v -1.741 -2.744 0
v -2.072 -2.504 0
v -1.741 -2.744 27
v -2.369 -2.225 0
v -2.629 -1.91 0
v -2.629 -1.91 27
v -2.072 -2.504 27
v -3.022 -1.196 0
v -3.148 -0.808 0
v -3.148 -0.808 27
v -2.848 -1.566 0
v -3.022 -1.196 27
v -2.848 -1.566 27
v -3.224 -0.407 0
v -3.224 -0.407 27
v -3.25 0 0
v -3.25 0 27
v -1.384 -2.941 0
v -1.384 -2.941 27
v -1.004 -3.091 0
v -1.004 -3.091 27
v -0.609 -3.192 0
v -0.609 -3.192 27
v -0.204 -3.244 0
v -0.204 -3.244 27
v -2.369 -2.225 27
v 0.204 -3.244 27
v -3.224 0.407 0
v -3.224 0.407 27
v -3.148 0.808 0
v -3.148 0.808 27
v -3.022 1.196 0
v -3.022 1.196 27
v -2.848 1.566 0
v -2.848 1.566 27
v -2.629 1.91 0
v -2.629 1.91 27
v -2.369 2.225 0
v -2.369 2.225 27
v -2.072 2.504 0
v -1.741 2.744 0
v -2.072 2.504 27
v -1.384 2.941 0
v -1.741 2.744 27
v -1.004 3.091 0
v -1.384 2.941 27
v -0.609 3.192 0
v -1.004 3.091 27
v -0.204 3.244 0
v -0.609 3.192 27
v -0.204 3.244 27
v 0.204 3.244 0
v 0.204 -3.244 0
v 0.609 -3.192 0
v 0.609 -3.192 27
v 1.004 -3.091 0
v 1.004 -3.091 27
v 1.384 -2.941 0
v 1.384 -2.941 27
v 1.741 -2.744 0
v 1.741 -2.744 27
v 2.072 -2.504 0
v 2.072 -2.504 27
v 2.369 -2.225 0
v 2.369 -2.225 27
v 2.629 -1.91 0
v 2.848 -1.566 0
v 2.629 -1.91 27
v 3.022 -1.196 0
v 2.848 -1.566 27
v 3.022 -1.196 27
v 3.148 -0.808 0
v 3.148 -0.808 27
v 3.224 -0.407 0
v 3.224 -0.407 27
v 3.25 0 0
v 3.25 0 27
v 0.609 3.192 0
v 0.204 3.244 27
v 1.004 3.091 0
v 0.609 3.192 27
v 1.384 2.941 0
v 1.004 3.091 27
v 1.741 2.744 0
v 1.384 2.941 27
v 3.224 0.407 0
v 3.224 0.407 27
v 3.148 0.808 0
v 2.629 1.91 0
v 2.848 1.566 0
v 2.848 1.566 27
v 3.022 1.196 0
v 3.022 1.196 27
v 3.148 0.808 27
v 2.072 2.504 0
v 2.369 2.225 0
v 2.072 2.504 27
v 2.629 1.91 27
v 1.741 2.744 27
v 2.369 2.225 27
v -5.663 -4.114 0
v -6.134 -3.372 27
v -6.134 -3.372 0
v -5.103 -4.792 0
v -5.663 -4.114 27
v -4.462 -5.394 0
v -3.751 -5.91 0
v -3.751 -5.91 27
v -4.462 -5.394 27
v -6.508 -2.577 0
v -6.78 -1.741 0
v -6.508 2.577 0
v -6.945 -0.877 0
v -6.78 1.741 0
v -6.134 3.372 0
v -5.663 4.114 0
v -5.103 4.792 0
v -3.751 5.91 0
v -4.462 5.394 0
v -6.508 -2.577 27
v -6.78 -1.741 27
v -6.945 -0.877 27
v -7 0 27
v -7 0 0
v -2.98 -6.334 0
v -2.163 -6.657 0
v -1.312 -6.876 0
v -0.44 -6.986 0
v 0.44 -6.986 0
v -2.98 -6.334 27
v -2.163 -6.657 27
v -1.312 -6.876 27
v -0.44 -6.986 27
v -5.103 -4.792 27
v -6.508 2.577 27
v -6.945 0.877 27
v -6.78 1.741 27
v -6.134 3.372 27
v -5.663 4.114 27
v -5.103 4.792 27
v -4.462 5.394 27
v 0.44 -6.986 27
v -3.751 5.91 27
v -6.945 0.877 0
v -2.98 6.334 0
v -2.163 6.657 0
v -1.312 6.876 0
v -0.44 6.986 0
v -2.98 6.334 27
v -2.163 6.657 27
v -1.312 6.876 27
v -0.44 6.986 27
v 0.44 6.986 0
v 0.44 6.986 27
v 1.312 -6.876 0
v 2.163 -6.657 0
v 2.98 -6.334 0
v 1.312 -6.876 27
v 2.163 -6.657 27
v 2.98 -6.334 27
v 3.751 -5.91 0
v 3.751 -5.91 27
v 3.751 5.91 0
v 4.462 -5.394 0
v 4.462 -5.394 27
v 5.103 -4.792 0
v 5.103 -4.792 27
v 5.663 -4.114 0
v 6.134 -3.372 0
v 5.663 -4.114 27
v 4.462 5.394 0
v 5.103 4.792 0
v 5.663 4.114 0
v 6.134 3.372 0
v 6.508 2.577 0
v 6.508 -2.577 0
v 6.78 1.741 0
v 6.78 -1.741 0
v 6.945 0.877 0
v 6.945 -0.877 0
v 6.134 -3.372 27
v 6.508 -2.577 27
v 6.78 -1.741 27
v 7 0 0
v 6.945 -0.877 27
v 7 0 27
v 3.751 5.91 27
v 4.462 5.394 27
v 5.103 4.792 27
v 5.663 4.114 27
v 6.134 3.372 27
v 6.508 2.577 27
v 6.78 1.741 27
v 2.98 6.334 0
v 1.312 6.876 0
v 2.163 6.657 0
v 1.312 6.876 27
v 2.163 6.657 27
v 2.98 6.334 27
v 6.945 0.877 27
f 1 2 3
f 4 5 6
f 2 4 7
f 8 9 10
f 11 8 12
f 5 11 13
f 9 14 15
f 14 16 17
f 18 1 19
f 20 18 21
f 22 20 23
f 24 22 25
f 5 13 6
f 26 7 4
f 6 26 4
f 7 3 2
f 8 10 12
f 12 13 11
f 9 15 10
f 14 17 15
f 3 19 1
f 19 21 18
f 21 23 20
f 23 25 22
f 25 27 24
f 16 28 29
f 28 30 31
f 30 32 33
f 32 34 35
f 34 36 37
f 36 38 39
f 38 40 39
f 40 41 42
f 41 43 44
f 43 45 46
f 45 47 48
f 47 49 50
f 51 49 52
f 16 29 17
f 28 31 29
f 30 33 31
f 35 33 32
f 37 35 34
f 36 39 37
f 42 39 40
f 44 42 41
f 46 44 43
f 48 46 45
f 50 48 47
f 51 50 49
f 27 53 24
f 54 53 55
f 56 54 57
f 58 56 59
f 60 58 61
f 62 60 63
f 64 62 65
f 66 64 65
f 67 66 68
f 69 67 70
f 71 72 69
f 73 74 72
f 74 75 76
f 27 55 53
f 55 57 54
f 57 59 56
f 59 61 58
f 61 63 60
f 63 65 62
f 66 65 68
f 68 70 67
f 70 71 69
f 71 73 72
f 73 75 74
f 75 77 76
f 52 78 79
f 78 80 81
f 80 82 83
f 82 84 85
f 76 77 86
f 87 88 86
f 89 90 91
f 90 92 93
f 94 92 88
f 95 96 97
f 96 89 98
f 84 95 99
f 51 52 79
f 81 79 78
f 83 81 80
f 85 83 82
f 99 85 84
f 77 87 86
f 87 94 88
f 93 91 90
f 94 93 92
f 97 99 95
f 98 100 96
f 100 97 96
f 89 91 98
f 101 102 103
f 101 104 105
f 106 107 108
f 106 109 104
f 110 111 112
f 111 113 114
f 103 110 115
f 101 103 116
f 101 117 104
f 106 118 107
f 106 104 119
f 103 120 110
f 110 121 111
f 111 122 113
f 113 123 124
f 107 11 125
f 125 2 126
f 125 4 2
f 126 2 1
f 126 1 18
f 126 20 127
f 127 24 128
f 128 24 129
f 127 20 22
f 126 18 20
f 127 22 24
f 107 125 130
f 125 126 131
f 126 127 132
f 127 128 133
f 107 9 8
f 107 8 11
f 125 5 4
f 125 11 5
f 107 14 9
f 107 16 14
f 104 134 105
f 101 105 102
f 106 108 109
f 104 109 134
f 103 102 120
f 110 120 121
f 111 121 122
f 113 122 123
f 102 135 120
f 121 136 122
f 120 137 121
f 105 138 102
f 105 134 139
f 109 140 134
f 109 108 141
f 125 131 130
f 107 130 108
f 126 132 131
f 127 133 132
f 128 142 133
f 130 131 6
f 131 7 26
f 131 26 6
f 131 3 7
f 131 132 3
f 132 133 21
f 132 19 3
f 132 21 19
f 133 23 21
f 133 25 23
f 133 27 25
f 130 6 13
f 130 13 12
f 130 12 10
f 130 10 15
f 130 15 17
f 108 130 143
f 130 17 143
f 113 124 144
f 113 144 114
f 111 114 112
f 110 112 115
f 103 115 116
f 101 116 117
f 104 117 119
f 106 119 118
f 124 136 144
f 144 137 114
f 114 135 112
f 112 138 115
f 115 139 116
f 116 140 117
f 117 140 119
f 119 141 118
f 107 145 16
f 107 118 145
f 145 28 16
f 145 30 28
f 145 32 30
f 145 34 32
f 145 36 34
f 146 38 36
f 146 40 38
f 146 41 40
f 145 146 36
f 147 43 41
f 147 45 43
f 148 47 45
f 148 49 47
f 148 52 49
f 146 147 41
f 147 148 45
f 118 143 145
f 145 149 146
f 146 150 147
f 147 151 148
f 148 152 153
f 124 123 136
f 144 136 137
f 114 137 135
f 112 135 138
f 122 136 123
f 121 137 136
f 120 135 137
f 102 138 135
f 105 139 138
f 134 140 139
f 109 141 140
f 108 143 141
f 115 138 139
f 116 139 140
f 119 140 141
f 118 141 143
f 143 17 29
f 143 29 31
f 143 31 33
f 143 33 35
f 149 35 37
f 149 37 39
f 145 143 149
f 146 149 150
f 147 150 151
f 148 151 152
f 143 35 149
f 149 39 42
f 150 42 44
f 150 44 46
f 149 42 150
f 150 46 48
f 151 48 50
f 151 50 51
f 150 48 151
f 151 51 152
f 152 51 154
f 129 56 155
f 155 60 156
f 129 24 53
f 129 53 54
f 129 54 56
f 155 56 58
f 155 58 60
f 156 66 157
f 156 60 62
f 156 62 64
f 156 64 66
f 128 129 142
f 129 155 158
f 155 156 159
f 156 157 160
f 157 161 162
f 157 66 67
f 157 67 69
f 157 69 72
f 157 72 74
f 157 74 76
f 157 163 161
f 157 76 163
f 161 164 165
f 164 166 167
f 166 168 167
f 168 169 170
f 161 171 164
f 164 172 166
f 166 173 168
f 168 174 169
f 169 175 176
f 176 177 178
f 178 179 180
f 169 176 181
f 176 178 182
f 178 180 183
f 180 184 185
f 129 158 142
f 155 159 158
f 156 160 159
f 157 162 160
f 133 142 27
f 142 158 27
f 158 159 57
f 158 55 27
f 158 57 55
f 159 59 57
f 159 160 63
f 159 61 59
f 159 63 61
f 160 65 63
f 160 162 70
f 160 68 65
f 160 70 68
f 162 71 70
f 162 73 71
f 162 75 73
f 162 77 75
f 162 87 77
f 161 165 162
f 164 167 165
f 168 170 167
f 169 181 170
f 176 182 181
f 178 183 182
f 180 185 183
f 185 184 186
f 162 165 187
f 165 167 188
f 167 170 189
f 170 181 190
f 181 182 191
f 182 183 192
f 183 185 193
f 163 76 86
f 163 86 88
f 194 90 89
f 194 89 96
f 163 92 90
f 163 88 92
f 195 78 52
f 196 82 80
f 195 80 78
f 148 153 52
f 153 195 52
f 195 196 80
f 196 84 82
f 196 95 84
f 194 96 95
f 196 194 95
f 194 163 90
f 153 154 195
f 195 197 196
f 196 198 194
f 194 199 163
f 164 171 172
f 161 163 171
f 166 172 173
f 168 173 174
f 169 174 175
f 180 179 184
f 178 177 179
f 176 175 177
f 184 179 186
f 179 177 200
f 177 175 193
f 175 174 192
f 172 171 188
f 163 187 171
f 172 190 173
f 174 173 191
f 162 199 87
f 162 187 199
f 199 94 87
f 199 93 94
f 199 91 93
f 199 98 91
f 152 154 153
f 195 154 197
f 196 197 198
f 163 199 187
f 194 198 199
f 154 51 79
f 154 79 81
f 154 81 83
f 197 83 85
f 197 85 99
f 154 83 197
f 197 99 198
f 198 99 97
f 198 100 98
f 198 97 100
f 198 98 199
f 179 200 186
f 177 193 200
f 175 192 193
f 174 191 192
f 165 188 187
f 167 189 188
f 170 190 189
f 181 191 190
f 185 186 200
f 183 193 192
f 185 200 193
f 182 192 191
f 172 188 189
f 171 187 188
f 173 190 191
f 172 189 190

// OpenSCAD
$fn = 50;

difference() {
	union() {
		cylinder(h = 27, r = 7.0);
	}
	union() {
		cylinder(h = 27, r = 3.25);
		cylinder(h = 27, r = 1.8);
	}
}
